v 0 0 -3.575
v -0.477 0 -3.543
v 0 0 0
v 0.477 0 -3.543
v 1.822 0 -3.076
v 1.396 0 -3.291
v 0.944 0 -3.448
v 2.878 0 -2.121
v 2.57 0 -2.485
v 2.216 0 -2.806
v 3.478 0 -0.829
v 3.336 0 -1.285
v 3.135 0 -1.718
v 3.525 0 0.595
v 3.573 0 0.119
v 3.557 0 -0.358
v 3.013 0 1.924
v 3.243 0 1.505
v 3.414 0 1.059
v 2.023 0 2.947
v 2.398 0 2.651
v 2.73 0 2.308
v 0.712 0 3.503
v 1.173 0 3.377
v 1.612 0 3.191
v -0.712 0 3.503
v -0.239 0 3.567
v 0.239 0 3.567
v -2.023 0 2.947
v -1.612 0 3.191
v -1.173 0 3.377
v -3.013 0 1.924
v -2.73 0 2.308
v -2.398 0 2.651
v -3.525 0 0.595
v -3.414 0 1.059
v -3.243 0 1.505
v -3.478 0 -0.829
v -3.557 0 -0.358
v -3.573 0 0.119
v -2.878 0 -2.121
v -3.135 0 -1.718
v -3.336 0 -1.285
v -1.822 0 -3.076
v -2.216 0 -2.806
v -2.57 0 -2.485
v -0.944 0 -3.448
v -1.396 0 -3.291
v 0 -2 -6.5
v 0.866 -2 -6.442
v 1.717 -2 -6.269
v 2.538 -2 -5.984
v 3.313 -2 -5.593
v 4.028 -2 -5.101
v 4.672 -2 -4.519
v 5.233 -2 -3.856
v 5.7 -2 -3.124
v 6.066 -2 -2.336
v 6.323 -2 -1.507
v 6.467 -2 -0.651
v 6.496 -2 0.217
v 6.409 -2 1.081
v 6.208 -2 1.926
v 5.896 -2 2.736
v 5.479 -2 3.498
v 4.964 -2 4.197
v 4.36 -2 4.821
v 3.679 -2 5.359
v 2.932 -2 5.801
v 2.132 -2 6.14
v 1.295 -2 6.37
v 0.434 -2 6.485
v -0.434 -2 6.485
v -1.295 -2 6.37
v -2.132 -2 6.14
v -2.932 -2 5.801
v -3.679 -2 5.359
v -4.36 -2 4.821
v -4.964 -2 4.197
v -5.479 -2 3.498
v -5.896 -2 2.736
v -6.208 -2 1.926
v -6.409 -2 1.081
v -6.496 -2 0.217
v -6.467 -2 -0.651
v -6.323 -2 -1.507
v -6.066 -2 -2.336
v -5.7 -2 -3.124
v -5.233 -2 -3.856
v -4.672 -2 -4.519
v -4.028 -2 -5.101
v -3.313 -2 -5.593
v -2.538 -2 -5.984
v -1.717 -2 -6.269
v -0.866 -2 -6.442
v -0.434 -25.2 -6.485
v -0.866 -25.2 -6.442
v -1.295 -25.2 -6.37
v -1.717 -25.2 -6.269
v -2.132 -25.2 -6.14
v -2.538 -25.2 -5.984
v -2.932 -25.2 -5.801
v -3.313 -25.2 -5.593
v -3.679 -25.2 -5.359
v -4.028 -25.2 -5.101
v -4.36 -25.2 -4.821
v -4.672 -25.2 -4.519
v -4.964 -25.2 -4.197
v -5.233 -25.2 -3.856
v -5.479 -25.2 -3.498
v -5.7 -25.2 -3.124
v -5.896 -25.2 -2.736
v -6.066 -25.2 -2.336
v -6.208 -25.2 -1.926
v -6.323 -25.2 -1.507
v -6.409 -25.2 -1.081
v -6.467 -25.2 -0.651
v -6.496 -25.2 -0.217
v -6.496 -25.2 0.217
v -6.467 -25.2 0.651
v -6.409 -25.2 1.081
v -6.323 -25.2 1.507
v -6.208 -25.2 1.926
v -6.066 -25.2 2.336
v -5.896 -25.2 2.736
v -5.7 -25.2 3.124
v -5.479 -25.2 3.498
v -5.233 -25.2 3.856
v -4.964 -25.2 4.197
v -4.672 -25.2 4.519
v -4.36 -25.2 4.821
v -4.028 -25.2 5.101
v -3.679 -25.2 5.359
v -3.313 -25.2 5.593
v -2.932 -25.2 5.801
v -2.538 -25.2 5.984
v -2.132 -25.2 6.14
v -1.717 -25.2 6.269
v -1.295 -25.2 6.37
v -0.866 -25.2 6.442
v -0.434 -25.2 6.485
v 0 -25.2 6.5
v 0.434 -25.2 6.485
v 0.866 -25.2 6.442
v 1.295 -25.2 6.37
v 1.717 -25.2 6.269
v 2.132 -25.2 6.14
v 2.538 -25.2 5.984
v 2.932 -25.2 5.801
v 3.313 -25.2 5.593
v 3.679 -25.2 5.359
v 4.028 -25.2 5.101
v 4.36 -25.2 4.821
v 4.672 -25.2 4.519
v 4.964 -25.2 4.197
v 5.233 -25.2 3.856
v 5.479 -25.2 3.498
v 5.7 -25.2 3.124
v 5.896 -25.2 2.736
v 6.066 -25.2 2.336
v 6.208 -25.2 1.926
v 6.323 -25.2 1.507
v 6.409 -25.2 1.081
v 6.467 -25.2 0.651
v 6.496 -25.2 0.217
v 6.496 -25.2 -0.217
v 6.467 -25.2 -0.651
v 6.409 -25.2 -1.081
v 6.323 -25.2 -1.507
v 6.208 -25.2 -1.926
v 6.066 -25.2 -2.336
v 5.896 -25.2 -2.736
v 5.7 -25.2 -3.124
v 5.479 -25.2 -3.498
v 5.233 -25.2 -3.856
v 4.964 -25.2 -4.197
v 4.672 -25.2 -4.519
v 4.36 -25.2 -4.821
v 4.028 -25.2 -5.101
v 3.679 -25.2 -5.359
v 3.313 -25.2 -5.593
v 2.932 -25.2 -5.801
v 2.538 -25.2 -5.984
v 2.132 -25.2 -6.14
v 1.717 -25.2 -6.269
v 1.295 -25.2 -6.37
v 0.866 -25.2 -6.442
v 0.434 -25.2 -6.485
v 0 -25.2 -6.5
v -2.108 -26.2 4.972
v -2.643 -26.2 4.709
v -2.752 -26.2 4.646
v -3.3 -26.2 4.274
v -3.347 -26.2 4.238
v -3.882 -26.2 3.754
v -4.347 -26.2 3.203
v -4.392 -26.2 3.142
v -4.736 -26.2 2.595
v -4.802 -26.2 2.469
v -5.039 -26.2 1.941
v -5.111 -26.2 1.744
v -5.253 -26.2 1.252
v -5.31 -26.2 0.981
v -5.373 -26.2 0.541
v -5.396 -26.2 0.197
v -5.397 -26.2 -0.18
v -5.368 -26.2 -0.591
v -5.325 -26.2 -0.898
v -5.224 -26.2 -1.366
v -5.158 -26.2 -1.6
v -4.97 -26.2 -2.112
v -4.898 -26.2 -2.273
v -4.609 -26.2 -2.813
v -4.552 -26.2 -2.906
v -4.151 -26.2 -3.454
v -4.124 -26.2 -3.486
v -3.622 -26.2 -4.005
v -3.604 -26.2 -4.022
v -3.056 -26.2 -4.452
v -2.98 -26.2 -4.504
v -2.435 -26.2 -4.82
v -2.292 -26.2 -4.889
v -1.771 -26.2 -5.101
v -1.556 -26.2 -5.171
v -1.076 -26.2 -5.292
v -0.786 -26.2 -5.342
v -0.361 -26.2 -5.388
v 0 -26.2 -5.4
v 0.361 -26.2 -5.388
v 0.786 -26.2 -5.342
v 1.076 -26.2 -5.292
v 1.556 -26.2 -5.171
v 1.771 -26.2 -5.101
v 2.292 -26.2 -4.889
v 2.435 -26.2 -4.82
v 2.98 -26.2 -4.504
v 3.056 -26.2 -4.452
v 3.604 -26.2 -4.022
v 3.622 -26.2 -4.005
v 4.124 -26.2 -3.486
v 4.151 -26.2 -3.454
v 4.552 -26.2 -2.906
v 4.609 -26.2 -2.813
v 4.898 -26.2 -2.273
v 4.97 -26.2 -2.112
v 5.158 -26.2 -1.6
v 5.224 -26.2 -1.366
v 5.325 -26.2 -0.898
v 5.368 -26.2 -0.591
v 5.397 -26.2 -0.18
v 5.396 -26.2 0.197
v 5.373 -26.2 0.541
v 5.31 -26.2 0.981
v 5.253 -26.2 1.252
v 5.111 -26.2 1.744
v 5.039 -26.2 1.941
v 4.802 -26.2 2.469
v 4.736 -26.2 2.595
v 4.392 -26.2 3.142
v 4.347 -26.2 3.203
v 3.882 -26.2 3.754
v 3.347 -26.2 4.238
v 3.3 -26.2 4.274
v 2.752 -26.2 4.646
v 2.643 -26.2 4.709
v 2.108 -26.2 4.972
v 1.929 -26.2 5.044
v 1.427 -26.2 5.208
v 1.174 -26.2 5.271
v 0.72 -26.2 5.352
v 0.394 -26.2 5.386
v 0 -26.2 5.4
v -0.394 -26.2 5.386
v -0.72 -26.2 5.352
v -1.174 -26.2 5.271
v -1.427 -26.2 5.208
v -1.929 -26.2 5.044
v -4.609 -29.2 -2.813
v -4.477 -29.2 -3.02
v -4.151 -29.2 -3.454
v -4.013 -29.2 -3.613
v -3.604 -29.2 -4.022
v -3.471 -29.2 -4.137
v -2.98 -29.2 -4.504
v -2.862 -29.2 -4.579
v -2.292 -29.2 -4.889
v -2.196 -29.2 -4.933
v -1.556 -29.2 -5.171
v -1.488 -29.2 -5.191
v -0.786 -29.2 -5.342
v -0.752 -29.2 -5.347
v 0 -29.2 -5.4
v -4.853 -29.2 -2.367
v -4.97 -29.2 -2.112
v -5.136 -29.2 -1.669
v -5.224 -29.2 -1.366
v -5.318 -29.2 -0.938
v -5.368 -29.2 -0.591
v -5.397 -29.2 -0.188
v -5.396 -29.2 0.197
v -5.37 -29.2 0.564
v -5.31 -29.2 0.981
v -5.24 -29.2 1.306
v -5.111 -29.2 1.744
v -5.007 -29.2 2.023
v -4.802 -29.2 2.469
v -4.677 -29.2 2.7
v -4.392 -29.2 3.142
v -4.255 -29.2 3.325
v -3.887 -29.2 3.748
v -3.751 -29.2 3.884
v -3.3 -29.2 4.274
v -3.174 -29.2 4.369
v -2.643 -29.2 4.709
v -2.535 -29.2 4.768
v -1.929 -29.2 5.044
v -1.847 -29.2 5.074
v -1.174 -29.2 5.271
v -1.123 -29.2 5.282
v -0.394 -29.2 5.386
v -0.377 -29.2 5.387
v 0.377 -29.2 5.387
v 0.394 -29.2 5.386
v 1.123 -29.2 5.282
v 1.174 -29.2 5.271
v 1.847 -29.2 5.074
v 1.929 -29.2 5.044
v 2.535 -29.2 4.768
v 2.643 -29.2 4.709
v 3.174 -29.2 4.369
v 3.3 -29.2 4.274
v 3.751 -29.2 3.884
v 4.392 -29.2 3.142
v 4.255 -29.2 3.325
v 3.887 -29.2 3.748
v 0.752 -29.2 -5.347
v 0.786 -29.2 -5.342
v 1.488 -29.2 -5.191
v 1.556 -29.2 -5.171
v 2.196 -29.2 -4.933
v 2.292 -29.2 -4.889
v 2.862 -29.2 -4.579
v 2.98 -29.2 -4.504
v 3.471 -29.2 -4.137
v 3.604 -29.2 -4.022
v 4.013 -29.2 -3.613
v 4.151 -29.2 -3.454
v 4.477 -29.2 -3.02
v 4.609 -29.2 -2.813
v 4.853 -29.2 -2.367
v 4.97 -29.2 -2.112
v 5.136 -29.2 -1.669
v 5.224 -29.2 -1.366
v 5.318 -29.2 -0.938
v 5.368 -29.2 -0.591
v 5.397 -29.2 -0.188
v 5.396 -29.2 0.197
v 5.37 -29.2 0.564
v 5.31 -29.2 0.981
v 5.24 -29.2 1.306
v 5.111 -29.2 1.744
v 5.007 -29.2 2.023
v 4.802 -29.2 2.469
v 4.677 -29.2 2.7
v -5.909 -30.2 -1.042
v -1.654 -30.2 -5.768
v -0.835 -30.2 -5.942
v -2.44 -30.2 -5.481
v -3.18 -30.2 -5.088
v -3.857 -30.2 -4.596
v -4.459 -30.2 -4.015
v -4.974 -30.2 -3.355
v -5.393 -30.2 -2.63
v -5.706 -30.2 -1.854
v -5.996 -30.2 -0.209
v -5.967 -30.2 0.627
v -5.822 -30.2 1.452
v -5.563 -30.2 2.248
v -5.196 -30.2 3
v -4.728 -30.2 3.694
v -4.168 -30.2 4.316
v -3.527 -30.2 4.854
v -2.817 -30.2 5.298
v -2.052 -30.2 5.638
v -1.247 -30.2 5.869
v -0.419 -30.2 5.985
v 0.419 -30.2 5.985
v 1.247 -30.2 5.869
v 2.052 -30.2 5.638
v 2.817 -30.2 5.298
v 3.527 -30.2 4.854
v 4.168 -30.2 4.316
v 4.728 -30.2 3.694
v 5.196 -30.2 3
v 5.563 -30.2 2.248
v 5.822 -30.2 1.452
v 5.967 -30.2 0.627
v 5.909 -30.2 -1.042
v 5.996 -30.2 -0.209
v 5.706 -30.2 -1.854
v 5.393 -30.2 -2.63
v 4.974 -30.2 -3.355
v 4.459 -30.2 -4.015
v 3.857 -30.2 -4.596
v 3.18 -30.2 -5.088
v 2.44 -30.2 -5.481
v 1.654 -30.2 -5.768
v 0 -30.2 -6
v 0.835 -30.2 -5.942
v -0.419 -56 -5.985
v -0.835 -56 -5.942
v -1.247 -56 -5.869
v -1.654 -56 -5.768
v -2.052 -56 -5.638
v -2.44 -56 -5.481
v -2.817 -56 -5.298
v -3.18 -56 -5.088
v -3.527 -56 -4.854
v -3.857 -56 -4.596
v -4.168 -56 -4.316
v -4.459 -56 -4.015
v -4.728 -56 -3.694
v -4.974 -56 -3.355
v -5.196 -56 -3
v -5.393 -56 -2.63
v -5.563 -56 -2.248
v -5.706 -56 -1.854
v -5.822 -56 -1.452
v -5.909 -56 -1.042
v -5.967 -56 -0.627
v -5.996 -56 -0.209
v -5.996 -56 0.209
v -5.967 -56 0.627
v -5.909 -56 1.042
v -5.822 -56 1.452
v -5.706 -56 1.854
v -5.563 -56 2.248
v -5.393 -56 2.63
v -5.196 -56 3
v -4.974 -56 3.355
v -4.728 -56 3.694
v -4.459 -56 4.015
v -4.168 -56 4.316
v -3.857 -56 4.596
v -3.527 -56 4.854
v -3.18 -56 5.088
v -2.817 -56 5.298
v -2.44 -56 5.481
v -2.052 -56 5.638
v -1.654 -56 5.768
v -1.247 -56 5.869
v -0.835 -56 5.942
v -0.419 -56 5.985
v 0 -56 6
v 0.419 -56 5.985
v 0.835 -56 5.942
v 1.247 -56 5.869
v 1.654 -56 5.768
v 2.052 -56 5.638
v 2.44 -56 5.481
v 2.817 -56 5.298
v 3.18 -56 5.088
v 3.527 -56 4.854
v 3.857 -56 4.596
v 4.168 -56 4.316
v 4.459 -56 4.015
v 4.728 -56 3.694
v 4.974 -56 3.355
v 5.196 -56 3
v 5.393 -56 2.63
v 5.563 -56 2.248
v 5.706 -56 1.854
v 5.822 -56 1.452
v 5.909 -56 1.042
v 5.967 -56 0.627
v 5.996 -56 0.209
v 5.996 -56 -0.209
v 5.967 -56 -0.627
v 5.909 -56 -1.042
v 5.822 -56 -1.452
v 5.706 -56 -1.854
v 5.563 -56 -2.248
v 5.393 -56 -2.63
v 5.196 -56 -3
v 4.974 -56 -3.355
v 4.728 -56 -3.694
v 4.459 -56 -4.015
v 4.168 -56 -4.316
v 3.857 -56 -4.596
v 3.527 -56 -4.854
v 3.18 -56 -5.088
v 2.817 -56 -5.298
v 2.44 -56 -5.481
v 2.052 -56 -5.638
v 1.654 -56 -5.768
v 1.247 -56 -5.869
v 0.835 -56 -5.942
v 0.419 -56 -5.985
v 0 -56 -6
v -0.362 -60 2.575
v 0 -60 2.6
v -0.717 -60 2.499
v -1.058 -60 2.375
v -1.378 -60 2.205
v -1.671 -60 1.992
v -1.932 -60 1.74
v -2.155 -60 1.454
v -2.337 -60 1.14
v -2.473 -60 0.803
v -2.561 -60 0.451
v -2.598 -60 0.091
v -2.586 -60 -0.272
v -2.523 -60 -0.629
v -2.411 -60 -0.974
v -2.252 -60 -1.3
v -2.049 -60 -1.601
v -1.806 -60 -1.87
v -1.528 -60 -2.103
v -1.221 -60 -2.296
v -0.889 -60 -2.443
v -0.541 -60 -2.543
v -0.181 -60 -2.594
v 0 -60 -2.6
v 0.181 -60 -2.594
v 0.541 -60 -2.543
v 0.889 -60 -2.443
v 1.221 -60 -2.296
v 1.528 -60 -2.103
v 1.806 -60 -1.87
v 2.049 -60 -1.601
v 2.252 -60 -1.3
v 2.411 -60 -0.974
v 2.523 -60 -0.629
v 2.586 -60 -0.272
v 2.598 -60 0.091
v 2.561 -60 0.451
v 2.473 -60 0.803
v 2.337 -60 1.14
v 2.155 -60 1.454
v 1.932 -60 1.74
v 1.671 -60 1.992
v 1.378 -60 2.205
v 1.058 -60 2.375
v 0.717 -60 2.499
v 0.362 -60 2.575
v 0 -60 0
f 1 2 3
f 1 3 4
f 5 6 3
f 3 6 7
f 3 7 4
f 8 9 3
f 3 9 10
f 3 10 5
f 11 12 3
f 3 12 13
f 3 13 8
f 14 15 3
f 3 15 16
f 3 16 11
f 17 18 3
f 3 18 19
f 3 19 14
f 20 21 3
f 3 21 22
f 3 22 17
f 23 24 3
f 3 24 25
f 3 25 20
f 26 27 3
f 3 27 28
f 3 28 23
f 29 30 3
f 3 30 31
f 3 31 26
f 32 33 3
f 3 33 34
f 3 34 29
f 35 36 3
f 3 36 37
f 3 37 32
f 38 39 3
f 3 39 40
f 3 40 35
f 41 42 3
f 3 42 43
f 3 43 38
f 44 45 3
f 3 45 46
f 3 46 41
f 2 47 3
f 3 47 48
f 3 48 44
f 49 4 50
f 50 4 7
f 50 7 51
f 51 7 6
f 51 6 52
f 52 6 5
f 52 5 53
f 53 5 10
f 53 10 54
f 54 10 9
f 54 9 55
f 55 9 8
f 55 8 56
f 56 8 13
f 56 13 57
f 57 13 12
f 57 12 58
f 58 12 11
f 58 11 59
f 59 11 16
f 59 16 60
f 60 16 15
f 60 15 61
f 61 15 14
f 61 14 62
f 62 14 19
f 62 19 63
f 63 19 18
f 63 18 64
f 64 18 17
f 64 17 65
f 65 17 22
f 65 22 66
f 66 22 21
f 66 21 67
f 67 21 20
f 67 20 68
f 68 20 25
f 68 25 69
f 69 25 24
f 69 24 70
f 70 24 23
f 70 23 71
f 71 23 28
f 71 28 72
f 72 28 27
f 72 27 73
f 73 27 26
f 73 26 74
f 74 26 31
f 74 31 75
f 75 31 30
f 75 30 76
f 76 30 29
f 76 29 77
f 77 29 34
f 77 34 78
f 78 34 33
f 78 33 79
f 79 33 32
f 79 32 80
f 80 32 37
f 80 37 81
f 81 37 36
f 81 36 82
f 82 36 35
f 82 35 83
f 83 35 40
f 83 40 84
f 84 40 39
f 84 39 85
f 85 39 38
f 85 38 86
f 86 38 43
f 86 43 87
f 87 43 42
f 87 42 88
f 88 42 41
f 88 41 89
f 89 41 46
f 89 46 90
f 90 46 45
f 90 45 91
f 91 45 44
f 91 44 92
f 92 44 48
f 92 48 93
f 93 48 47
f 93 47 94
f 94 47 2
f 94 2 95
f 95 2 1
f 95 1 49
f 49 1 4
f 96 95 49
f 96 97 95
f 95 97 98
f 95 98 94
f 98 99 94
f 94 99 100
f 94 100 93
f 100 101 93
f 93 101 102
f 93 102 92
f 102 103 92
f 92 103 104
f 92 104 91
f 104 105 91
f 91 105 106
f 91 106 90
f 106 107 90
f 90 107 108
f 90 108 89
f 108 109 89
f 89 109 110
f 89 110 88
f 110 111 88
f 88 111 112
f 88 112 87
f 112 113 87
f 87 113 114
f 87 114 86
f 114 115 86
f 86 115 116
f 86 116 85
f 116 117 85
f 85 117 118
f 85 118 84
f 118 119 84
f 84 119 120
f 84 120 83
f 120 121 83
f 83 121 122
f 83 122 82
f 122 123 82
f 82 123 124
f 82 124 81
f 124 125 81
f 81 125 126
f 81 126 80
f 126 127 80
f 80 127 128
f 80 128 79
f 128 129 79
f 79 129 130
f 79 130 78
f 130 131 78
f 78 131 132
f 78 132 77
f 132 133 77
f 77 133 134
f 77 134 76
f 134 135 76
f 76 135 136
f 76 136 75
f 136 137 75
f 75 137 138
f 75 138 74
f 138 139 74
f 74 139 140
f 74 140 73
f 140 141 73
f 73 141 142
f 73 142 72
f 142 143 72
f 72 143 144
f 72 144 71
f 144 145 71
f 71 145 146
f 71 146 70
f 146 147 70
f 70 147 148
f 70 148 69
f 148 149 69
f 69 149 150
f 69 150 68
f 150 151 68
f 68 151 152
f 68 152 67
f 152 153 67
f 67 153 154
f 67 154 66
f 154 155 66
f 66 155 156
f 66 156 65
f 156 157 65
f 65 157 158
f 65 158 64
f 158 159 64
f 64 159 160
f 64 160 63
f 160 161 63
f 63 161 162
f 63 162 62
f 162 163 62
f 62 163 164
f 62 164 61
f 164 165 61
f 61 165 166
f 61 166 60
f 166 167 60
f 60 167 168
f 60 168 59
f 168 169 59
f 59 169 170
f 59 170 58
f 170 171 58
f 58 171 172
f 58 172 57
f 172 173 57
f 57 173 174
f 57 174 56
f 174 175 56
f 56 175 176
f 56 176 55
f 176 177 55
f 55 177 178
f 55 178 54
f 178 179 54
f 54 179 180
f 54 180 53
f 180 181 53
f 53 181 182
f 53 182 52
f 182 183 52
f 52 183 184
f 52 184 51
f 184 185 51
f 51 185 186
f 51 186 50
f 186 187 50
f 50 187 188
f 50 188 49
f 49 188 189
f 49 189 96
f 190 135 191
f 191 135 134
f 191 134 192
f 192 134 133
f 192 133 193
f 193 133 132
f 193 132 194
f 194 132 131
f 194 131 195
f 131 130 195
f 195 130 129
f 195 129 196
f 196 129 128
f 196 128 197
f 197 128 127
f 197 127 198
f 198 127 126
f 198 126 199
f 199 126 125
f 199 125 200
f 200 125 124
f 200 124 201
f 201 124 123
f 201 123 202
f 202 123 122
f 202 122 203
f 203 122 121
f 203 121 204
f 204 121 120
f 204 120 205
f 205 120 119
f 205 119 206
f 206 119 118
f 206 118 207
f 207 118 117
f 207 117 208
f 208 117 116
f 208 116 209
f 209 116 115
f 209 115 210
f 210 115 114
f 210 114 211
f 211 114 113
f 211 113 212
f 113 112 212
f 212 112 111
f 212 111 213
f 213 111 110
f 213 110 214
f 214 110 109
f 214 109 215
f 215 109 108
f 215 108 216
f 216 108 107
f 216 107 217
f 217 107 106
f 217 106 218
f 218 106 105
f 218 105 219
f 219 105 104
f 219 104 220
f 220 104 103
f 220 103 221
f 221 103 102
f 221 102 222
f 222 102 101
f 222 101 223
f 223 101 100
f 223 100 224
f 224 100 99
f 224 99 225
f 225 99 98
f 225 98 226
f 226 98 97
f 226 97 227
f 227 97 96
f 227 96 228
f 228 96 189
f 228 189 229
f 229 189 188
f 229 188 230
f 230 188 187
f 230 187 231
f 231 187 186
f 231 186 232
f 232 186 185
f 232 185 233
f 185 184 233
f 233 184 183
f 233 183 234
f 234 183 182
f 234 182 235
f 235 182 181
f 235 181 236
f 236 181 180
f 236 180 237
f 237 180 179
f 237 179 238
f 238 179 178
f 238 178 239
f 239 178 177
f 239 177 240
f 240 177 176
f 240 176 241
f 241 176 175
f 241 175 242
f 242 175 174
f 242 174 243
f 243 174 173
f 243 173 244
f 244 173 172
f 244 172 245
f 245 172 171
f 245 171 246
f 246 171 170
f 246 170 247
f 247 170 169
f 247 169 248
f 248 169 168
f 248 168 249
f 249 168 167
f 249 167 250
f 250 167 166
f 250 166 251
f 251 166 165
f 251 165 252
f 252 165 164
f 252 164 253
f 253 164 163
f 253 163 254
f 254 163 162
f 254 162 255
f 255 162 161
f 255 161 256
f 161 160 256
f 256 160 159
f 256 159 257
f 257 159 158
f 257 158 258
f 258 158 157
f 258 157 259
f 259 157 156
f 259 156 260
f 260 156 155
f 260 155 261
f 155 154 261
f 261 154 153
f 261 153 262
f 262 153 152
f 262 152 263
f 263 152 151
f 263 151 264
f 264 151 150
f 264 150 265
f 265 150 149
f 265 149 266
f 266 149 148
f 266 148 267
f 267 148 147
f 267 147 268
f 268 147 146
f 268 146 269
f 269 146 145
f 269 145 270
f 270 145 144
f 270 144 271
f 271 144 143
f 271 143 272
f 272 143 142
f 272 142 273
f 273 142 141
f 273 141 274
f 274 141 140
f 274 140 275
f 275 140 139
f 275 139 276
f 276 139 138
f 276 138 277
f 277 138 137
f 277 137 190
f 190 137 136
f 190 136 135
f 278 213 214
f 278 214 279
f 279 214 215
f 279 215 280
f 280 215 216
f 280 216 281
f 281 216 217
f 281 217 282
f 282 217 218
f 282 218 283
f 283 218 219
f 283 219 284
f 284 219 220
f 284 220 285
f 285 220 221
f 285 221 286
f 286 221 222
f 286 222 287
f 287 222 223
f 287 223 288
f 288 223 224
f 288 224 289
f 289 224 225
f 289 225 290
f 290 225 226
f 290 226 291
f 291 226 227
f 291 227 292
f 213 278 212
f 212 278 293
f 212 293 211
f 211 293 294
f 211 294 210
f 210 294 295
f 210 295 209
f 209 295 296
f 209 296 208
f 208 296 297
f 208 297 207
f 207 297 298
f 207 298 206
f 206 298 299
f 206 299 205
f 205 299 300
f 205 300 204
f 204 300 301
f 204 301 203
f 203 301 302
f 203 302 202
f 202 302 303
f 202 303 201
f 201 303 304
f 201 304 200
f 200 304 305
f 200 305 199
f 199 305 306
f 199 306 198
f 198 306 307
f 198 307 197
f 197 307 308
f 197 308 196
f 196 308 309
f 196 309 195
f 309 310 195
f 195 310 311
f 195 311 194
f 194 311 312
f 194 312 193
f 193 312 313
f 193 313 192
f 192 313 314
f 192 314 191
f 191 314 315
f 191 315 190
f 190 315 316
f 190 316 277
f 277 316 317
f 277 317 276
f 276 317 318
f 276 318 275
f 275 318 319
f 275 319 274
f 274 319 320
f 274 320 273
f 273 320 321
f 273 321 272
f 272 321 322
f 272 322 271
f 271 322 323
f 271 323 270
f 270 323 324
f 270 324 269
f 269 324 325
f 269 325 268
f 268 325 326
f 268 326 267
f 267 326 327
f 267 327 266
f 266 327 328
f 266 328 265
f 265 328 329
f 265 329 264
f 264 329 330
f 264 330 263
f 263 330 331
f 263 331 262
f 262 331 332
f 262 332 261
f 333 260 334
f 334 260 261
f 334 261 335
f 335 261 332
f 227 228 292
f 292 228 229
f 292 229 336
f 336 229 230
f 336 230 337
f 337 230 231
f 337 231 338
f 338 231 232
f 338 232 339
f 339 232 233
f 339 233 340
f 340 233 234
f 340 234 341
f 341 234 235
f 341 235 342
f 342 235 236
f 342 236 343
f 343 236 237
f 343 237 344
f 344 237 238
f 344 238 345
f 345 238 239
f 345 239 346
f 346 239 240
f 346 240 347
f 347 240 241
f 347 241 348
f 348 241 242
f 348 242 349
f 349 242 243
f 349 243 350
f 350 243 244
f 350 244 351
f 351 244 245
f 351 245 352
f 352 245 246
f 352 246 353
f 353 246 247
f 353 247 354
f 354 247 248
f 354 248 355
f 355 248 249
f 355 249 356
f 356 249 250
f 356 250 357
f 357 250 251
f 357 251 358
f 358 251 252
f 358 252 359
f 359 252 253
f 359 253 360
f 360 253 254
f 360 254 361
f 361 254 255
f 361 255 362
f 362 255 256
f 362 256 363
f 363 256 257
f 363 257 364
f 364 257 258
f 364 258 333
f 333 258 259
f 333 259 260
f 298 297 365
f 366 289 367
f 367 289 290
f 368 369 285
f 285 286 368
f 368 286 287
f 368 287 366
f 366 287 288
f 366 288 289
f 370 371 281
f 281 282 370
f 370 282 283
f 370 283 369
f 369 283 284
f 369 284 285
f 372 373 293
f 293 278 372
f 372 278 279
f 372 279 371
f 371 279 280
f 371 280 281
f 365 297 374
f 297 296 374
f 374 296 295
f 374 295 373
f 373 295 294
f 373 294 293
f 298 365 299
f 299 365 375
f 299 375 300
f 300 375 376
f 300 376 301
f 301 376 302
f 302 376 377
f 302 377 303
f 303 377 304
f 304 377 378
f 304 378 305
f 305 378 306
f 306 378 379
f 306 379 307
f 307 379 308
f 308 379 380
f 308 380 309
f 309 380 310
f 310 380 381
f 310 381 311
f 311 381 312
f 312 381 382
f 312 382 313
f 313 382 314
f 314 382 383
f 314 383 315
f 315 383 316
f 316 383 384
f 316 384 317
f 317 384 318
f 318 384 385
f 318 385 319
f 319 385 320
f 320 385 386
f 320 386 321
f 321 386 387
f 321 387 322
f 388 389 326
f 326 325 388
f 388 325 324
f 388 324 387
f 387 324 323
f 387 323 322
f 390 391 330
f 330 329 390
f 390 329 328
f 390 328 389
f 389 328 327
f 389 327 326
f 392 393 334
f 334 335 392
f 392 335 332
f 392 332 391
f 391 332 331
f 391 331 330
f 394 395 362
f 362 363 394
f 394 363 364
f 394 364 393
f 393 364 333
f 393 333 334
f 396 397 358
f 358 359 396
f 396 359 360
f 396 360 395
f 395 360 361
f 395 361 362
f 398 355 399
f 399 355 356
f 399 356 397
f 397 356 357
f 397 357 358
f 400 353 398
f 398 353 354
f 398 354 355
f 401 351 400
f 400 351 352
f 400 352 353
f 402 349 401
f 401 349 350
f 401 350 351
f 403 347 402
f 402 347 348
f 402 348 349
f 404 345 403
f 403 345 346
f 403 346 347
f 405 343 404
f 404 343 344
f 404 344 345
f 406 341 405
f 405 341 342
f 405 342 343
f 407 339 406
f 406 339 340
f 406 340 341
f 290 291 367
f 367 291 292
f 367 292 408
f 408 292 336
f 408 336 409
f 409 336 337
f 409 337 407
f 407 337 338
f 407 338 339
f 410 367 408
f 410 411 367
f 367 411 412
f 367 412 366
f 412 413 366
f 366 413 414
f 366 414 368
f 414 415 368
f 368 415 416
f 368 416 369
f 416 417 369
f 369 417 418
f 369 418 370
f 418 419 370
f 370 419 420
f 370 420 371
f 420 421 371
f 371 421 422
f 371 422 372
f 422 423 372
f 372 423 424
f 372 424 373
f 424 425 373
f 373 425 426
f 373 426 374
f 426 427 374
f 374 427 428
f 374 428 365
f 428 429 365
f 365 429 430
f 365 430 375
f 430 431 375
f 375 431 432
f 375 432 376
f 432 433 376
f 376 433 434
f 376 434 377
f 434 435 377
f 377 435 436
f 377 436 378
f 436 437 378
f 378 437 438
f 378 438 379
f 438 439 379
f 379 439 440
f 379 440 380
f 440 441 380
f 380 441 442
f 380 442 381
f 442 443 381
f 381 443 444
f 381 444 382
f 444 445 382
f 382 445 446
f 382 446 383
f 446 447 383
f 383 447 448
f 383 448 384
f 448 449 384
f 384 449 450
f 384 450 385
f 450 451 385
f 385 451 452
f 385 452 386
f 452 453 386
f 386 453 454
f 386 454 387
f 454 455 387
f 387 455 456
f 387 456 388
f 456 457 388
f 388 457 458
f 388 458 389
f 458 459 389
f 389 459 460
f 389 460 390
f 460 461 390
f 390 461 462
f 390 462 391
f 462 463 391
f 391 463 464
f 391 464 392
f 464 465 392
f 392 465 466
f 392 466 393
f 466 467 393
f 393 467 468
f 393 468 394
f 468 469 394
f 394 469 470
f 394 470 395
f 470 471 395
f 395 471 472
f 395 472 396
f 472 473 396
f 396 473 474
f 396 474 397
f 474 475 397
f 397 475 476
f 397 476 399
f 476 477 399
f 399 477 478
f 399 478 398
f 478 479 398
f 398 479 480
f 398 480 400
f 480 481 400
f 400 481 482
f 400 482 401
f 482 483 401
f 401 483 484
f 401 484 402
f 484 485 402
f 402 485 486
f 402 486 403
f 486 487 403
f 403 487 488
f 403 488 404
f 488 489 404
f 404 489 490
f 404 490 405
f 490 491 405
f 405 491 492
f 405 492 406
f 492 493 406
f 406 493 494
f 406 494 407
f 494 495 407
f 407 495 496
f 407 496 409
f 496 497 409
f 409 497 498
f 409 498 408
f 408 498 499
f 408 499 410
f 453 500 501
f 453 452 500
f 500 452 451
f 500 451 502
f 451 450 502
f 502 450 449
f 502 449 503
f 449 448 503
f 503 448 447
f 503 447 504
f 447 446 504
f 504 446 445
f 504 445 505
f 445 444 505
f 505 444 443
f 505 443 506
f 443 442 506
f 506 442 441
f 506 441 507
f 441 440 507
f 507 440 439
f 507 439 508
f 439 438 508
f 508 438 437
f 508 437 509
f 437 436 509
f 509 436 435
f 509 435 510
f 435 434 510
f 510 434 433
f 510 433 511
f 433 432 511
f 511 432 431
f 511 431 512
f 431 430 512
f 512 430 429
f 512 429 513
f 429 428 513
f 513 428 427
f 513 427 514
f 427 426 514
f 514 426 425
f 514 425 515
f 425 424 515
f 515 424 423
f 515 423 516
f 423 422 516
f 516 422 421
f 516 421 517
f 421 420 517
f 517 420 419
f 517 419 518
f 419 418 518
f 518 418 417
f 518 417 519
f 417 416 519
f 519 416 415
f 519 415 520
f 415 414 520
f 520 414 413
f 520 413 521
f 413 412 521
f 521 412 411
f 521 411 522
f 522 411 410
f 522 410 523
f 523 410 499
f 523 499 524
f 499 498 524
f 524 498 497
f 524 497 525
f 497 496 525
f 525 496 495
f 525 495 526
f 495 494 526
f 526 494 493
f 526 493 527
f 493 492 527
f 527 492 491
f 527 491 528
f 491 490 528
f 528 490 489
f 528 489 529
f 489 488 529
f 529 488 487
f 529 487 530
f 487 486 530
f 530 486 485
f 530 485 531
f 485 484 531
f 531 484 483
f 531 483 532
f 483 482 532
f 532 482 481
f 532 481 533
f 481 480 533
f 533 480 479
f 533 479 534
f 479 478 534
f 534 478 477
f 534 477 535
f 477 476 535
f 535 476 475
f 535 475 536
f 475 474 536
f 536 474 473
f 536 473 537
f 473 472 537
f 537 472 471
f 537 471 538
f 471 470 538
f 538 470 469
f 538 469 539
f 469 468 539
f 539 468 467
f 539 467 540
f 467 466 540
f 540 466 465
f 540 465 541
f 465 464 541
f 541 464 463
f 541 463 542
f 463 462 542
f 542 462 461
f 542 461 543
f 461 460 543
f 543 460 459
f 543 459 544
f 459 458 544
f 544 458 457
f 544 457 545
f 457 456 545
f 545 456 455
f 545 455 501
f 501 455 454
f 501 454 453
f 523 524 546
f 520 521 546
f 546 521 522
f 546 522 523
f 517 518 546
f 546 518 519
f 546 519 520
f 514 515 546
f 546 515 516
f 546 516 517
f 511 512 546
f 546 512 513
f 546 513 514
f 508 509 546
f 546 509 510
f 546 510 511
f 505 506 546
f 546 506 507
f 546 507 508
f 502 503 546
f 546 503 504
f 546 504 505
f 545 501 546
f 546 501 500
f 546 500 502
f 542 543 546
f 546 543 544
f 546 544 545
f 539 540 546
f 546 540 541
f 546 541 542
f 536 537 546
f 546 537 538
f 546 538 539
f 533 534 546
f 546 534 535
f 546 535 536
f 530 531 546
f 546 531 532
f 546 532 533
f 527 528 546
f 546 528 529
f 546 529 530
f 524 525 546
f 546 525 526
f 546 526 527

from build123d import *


with BuildPart() as part:
    # Sketch1 → Motor_reductora_husillo (revolve)
    with BuildSketch(Plane.XY, mode=Mode.PRIVATE) as motor_reductora_husillo_sk:
        Polygon((0, 0), (3.575, 0), (6.5, -2), (6.5, -25.2), (5.4, -26.2), (5.4, -29.2), (6, -30.2), (6, -56), (2.6, -60), (0, -60), align=None)
    revolve(motor_reductora_husillo_sk.sketch.rotate(Axis((0, -64, 0), (0, 1, 0)), 90), axis=Axis((0, -64, 0), (0, 1, 0)))


solid = part.part
